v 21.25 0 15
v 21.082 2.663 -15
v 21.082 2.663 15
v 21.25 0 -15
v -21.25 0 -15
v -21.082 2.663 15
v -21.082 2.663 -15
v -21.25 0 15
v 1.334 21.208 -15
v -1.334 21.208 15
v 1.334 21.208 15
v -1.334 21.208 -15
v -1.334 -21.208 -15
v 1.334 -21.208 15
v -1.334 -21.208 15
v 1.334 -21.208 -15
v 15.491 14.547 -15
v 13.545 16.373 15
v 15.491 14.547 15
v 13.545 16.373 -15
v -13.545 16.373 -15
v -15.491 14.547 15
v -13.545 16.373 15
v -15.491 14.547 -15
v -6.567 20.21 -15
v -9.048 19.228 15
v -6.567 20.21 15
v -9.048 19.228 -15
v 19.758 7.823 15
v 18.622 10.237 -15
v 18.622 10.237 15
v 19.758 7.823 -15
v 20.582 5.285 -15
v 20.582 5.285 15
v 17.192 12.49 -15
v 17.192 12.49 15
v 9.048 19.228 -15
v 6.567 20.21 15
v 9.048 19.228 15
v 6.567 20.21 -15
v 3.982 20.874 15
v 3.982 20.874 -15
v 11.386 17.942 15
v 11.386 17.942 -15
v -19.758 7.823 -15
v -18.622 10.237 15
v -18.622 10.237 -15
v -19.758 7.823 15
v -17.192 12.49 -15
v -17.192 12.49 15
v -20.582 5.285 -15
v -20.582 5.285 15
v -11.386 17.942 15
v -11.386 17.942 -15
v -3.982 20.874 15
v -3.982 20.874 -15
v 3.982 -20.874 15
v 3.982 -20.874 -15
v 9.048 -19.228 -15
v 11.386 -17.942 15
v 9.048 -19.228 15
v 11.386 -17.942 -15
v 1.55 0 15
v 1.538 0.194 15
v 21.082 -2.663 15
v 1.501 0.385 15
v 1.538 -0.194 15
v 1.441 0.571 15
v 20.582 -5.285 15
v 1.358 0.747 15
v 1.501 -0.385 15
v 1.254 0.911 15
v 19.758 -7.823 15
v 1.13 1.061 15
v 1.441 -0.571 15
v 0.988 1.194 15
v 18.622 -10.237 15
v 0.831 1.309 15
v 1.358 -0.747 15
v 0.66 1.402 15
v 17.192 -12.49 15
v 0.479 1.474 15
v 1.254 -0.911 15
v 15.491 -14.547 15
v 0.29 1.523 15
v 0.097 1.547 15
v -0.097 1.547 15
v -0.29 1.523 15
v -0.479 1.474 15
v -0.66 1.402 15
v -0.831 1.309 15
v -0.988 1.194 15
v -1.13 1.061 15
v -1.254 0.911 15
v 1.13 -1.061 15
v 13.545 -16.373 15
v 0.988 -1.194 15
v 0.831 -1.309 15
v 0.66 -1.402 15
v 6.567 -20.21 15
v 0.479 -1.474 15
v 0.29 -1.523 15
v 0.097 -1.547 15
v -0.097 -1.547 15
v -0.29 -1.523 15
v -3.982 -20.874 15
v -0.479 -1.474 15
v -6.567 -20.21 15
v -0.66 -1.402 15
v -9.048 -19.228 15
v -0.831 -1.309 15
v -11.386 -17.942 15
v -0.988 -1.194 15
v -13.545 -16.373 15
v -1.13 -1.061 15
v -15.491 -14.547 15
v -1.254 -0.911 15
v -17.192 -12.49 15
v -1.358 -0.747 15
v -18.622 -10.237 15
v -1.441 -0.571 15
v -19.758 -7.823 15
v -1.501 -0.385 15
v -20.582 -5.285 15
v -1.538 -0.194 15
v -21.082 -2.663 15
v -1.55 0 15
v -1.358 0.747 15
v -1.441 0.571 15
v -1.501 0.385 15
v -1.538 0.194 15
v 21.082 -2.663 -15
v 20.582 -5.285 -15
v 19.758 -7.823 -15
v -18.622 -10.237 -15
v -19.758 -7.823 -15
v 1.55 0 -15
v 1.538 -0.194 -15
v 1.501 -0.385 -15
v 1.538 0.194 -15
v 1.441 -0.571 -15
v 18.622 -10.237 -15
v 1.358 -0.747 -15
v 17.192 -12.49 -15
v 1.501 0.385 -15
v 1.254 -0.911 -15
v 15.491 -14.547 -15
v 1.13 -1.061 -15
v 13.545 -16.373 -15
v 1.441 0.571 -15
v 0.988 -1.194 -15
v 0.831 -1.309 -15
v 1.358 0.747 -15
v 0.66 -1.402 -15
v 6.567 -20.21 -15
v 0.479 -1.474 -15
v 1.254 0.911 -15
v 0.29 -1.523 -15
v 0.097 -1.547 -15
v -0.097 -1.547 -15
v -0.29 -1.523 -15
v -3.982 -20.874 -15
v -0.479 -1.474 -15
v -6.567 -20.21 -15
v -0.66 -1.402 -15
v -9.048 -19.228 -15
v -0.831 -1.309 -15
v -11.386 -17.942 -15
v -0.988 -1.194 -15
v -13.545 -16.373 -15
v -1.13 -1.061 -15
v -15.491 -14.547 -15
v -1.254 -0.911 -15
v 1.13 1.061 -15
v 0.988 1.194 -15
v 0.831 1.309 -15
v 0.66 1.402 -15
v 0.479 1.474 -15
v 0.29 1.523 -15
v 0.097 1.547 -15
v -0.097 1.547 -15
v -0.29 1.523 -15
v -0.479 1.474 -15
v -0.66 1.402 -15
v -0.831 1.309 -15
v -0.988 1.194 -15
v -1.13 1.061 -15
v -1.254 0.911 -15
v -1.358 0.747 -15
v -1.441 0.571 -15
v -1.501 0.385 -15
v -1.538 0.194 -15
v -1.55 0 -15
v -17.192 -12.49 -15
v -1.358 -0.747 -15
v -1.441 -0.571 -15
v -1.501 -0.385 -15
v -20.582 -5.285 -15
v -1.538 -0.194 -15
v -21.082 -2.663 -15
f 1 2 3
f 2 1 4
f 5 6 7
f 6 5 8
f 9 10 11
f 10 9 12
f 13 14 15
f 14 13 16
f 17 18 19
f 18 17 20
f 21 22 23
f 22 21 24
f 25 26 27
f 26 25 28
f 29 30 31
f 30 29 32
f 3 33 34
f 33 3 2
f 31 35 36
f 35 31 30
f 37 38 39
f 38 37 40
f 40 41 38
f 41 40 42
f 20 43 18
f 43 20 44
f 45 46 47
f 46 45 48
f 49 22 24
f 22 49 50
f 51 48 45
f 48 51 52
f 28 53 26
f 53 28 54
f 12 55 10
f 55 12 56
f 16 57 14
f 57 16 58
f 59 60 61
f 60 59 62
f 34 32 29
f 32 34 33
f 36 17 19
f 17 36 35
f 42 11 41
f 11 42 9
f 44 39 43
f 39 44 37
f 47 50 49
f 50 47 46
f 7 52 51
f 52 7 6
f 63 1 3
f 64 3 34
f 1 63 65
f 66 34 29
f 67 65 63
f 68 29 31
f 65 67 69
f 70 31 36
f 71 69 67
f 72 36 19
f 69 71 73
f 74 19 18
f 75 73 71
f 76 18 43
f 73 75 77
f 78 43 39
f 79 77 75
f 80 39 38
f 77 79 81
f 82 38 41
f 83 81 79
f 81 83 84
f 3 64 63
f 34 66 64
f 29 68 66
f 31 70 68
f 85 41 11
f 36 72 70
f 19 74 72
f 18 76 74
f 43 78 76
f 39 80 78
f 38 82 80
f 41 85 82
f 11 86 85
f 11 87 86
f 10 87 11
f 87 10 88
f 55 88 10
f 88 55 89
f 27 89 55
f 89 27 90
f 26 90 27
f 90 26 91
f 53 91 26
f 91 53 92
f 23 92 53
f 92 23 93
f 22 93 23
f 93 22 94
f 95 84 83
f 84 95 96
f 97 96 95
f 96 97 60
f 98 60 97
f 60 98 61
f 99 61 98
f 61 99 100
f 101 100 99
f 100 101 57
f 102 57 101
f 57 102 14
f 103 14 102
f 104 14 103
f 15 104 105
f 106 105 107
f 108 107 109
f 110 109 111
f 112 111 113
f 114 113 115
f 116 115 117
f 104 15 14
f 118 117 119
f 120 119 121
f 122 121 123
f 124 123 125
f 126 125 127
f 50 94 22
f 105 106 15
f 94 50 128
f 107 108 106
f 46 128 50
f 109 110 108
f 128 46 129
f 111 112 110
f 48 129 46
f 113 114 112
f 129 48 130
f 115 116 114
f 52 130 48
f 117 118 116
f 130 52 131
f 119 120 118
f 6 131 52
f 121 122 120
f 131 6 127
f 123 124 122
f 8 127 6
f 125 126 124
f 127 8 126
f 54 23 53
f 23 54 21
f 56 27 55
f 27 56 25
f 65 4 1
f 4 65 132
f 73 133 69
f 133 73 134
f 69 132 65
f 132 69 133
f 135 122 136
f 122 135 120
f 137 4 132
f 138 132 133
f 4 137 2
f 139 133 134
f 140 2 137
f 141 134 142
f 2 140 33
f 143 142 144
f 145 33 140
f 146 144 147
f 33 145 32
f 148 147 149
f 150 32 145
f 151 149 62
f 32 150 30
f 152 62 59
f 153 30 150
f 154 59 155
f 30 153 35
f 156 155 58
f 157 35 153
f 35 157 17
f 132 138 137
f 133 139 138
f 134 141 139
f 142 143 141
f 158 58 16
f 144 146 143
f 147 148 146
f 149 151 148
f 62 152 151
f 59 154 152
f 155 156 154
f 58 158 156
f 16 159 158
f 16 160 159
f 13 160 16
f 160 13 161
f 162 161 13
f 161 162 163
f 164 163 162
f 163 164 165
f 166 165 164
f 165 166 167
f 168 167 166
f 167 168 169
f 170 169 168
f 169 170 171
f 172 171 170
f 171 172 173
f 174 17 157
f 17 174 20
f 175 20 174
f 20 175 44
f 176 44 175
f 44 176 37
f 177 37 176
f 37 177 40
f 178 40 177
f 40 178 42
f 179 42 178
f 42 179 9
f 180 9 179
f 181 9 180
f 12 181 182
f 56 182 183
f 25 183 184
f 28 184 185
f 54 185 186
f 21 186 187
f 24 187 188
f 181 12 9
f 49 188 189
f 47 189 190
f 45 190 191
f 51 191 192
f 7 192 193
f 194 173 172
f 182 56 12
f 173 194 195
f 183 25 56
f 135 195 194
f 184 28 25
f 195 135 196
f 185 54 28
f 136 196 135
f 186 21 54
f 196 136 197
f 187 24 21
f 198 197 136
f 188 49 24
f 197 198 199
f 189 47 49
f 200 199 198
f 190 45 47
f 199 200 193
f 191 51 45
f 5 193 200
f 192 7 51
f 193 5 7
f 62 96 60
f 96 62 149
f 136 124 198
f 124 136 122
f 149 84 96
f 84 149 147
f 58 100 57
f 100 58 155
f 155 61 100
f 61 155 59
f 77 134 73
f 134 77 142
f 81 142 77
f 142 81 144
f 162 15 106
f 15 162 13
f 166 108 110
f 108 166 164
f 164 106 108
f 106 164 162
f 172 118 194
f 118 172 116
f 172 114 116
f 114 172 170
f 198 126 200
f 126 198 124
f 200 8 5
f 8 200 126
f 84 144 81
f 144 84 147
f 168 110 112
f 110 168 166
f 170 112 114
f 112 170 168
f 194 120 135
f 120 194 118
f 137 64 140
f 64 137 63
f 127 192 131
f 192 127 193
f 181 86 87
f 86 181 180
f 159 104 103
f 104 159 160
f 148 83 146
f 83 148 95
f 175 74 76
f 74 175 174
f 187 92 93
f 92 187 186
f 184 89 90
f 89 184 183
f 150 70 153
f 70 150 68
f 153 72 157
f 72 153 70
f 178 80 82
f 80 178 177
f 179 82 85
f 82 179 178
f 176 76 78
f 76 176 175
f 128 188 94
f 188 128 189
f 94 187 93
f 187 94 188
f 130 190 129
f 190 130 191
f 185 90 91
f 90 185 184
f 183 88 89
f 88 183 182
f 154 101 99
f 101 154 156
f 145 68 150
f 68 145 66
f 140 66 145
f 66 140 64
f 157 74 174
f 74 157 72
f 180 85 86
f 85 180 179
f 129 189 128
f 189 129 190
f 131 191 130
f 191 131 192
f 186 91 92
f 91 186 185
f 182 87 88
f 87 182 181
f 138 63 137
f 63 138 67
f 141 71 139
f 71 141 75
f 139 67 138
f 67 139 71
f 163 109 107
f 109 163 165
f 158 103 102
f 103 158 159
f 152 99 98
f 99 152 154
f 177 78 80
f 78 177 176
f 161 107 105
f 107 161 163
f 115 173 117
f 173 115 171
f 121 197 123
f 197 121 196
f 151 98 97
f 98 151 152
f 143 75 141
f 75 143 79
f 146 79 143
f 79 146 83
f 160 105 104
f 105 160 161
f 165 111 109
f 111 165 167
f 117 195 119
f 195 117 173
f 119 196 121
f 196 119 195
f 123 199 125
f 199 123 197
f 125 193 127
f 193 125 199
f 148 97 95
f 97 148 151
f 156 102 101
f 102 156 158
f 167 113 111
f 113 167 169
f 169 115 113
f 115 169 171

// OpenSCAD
$fn = 50;


difference() {
	union() {
		translate(v = [0, 0, -15.0000000000]) {
			cylinder(h = 30, r = 21.2500000000);
		}
	}
	union() {
		translate(v = [0, 0, -100.0000000000]) {
			cylinder(h = 200, r = 1.5500000000);
		}
	}
}
